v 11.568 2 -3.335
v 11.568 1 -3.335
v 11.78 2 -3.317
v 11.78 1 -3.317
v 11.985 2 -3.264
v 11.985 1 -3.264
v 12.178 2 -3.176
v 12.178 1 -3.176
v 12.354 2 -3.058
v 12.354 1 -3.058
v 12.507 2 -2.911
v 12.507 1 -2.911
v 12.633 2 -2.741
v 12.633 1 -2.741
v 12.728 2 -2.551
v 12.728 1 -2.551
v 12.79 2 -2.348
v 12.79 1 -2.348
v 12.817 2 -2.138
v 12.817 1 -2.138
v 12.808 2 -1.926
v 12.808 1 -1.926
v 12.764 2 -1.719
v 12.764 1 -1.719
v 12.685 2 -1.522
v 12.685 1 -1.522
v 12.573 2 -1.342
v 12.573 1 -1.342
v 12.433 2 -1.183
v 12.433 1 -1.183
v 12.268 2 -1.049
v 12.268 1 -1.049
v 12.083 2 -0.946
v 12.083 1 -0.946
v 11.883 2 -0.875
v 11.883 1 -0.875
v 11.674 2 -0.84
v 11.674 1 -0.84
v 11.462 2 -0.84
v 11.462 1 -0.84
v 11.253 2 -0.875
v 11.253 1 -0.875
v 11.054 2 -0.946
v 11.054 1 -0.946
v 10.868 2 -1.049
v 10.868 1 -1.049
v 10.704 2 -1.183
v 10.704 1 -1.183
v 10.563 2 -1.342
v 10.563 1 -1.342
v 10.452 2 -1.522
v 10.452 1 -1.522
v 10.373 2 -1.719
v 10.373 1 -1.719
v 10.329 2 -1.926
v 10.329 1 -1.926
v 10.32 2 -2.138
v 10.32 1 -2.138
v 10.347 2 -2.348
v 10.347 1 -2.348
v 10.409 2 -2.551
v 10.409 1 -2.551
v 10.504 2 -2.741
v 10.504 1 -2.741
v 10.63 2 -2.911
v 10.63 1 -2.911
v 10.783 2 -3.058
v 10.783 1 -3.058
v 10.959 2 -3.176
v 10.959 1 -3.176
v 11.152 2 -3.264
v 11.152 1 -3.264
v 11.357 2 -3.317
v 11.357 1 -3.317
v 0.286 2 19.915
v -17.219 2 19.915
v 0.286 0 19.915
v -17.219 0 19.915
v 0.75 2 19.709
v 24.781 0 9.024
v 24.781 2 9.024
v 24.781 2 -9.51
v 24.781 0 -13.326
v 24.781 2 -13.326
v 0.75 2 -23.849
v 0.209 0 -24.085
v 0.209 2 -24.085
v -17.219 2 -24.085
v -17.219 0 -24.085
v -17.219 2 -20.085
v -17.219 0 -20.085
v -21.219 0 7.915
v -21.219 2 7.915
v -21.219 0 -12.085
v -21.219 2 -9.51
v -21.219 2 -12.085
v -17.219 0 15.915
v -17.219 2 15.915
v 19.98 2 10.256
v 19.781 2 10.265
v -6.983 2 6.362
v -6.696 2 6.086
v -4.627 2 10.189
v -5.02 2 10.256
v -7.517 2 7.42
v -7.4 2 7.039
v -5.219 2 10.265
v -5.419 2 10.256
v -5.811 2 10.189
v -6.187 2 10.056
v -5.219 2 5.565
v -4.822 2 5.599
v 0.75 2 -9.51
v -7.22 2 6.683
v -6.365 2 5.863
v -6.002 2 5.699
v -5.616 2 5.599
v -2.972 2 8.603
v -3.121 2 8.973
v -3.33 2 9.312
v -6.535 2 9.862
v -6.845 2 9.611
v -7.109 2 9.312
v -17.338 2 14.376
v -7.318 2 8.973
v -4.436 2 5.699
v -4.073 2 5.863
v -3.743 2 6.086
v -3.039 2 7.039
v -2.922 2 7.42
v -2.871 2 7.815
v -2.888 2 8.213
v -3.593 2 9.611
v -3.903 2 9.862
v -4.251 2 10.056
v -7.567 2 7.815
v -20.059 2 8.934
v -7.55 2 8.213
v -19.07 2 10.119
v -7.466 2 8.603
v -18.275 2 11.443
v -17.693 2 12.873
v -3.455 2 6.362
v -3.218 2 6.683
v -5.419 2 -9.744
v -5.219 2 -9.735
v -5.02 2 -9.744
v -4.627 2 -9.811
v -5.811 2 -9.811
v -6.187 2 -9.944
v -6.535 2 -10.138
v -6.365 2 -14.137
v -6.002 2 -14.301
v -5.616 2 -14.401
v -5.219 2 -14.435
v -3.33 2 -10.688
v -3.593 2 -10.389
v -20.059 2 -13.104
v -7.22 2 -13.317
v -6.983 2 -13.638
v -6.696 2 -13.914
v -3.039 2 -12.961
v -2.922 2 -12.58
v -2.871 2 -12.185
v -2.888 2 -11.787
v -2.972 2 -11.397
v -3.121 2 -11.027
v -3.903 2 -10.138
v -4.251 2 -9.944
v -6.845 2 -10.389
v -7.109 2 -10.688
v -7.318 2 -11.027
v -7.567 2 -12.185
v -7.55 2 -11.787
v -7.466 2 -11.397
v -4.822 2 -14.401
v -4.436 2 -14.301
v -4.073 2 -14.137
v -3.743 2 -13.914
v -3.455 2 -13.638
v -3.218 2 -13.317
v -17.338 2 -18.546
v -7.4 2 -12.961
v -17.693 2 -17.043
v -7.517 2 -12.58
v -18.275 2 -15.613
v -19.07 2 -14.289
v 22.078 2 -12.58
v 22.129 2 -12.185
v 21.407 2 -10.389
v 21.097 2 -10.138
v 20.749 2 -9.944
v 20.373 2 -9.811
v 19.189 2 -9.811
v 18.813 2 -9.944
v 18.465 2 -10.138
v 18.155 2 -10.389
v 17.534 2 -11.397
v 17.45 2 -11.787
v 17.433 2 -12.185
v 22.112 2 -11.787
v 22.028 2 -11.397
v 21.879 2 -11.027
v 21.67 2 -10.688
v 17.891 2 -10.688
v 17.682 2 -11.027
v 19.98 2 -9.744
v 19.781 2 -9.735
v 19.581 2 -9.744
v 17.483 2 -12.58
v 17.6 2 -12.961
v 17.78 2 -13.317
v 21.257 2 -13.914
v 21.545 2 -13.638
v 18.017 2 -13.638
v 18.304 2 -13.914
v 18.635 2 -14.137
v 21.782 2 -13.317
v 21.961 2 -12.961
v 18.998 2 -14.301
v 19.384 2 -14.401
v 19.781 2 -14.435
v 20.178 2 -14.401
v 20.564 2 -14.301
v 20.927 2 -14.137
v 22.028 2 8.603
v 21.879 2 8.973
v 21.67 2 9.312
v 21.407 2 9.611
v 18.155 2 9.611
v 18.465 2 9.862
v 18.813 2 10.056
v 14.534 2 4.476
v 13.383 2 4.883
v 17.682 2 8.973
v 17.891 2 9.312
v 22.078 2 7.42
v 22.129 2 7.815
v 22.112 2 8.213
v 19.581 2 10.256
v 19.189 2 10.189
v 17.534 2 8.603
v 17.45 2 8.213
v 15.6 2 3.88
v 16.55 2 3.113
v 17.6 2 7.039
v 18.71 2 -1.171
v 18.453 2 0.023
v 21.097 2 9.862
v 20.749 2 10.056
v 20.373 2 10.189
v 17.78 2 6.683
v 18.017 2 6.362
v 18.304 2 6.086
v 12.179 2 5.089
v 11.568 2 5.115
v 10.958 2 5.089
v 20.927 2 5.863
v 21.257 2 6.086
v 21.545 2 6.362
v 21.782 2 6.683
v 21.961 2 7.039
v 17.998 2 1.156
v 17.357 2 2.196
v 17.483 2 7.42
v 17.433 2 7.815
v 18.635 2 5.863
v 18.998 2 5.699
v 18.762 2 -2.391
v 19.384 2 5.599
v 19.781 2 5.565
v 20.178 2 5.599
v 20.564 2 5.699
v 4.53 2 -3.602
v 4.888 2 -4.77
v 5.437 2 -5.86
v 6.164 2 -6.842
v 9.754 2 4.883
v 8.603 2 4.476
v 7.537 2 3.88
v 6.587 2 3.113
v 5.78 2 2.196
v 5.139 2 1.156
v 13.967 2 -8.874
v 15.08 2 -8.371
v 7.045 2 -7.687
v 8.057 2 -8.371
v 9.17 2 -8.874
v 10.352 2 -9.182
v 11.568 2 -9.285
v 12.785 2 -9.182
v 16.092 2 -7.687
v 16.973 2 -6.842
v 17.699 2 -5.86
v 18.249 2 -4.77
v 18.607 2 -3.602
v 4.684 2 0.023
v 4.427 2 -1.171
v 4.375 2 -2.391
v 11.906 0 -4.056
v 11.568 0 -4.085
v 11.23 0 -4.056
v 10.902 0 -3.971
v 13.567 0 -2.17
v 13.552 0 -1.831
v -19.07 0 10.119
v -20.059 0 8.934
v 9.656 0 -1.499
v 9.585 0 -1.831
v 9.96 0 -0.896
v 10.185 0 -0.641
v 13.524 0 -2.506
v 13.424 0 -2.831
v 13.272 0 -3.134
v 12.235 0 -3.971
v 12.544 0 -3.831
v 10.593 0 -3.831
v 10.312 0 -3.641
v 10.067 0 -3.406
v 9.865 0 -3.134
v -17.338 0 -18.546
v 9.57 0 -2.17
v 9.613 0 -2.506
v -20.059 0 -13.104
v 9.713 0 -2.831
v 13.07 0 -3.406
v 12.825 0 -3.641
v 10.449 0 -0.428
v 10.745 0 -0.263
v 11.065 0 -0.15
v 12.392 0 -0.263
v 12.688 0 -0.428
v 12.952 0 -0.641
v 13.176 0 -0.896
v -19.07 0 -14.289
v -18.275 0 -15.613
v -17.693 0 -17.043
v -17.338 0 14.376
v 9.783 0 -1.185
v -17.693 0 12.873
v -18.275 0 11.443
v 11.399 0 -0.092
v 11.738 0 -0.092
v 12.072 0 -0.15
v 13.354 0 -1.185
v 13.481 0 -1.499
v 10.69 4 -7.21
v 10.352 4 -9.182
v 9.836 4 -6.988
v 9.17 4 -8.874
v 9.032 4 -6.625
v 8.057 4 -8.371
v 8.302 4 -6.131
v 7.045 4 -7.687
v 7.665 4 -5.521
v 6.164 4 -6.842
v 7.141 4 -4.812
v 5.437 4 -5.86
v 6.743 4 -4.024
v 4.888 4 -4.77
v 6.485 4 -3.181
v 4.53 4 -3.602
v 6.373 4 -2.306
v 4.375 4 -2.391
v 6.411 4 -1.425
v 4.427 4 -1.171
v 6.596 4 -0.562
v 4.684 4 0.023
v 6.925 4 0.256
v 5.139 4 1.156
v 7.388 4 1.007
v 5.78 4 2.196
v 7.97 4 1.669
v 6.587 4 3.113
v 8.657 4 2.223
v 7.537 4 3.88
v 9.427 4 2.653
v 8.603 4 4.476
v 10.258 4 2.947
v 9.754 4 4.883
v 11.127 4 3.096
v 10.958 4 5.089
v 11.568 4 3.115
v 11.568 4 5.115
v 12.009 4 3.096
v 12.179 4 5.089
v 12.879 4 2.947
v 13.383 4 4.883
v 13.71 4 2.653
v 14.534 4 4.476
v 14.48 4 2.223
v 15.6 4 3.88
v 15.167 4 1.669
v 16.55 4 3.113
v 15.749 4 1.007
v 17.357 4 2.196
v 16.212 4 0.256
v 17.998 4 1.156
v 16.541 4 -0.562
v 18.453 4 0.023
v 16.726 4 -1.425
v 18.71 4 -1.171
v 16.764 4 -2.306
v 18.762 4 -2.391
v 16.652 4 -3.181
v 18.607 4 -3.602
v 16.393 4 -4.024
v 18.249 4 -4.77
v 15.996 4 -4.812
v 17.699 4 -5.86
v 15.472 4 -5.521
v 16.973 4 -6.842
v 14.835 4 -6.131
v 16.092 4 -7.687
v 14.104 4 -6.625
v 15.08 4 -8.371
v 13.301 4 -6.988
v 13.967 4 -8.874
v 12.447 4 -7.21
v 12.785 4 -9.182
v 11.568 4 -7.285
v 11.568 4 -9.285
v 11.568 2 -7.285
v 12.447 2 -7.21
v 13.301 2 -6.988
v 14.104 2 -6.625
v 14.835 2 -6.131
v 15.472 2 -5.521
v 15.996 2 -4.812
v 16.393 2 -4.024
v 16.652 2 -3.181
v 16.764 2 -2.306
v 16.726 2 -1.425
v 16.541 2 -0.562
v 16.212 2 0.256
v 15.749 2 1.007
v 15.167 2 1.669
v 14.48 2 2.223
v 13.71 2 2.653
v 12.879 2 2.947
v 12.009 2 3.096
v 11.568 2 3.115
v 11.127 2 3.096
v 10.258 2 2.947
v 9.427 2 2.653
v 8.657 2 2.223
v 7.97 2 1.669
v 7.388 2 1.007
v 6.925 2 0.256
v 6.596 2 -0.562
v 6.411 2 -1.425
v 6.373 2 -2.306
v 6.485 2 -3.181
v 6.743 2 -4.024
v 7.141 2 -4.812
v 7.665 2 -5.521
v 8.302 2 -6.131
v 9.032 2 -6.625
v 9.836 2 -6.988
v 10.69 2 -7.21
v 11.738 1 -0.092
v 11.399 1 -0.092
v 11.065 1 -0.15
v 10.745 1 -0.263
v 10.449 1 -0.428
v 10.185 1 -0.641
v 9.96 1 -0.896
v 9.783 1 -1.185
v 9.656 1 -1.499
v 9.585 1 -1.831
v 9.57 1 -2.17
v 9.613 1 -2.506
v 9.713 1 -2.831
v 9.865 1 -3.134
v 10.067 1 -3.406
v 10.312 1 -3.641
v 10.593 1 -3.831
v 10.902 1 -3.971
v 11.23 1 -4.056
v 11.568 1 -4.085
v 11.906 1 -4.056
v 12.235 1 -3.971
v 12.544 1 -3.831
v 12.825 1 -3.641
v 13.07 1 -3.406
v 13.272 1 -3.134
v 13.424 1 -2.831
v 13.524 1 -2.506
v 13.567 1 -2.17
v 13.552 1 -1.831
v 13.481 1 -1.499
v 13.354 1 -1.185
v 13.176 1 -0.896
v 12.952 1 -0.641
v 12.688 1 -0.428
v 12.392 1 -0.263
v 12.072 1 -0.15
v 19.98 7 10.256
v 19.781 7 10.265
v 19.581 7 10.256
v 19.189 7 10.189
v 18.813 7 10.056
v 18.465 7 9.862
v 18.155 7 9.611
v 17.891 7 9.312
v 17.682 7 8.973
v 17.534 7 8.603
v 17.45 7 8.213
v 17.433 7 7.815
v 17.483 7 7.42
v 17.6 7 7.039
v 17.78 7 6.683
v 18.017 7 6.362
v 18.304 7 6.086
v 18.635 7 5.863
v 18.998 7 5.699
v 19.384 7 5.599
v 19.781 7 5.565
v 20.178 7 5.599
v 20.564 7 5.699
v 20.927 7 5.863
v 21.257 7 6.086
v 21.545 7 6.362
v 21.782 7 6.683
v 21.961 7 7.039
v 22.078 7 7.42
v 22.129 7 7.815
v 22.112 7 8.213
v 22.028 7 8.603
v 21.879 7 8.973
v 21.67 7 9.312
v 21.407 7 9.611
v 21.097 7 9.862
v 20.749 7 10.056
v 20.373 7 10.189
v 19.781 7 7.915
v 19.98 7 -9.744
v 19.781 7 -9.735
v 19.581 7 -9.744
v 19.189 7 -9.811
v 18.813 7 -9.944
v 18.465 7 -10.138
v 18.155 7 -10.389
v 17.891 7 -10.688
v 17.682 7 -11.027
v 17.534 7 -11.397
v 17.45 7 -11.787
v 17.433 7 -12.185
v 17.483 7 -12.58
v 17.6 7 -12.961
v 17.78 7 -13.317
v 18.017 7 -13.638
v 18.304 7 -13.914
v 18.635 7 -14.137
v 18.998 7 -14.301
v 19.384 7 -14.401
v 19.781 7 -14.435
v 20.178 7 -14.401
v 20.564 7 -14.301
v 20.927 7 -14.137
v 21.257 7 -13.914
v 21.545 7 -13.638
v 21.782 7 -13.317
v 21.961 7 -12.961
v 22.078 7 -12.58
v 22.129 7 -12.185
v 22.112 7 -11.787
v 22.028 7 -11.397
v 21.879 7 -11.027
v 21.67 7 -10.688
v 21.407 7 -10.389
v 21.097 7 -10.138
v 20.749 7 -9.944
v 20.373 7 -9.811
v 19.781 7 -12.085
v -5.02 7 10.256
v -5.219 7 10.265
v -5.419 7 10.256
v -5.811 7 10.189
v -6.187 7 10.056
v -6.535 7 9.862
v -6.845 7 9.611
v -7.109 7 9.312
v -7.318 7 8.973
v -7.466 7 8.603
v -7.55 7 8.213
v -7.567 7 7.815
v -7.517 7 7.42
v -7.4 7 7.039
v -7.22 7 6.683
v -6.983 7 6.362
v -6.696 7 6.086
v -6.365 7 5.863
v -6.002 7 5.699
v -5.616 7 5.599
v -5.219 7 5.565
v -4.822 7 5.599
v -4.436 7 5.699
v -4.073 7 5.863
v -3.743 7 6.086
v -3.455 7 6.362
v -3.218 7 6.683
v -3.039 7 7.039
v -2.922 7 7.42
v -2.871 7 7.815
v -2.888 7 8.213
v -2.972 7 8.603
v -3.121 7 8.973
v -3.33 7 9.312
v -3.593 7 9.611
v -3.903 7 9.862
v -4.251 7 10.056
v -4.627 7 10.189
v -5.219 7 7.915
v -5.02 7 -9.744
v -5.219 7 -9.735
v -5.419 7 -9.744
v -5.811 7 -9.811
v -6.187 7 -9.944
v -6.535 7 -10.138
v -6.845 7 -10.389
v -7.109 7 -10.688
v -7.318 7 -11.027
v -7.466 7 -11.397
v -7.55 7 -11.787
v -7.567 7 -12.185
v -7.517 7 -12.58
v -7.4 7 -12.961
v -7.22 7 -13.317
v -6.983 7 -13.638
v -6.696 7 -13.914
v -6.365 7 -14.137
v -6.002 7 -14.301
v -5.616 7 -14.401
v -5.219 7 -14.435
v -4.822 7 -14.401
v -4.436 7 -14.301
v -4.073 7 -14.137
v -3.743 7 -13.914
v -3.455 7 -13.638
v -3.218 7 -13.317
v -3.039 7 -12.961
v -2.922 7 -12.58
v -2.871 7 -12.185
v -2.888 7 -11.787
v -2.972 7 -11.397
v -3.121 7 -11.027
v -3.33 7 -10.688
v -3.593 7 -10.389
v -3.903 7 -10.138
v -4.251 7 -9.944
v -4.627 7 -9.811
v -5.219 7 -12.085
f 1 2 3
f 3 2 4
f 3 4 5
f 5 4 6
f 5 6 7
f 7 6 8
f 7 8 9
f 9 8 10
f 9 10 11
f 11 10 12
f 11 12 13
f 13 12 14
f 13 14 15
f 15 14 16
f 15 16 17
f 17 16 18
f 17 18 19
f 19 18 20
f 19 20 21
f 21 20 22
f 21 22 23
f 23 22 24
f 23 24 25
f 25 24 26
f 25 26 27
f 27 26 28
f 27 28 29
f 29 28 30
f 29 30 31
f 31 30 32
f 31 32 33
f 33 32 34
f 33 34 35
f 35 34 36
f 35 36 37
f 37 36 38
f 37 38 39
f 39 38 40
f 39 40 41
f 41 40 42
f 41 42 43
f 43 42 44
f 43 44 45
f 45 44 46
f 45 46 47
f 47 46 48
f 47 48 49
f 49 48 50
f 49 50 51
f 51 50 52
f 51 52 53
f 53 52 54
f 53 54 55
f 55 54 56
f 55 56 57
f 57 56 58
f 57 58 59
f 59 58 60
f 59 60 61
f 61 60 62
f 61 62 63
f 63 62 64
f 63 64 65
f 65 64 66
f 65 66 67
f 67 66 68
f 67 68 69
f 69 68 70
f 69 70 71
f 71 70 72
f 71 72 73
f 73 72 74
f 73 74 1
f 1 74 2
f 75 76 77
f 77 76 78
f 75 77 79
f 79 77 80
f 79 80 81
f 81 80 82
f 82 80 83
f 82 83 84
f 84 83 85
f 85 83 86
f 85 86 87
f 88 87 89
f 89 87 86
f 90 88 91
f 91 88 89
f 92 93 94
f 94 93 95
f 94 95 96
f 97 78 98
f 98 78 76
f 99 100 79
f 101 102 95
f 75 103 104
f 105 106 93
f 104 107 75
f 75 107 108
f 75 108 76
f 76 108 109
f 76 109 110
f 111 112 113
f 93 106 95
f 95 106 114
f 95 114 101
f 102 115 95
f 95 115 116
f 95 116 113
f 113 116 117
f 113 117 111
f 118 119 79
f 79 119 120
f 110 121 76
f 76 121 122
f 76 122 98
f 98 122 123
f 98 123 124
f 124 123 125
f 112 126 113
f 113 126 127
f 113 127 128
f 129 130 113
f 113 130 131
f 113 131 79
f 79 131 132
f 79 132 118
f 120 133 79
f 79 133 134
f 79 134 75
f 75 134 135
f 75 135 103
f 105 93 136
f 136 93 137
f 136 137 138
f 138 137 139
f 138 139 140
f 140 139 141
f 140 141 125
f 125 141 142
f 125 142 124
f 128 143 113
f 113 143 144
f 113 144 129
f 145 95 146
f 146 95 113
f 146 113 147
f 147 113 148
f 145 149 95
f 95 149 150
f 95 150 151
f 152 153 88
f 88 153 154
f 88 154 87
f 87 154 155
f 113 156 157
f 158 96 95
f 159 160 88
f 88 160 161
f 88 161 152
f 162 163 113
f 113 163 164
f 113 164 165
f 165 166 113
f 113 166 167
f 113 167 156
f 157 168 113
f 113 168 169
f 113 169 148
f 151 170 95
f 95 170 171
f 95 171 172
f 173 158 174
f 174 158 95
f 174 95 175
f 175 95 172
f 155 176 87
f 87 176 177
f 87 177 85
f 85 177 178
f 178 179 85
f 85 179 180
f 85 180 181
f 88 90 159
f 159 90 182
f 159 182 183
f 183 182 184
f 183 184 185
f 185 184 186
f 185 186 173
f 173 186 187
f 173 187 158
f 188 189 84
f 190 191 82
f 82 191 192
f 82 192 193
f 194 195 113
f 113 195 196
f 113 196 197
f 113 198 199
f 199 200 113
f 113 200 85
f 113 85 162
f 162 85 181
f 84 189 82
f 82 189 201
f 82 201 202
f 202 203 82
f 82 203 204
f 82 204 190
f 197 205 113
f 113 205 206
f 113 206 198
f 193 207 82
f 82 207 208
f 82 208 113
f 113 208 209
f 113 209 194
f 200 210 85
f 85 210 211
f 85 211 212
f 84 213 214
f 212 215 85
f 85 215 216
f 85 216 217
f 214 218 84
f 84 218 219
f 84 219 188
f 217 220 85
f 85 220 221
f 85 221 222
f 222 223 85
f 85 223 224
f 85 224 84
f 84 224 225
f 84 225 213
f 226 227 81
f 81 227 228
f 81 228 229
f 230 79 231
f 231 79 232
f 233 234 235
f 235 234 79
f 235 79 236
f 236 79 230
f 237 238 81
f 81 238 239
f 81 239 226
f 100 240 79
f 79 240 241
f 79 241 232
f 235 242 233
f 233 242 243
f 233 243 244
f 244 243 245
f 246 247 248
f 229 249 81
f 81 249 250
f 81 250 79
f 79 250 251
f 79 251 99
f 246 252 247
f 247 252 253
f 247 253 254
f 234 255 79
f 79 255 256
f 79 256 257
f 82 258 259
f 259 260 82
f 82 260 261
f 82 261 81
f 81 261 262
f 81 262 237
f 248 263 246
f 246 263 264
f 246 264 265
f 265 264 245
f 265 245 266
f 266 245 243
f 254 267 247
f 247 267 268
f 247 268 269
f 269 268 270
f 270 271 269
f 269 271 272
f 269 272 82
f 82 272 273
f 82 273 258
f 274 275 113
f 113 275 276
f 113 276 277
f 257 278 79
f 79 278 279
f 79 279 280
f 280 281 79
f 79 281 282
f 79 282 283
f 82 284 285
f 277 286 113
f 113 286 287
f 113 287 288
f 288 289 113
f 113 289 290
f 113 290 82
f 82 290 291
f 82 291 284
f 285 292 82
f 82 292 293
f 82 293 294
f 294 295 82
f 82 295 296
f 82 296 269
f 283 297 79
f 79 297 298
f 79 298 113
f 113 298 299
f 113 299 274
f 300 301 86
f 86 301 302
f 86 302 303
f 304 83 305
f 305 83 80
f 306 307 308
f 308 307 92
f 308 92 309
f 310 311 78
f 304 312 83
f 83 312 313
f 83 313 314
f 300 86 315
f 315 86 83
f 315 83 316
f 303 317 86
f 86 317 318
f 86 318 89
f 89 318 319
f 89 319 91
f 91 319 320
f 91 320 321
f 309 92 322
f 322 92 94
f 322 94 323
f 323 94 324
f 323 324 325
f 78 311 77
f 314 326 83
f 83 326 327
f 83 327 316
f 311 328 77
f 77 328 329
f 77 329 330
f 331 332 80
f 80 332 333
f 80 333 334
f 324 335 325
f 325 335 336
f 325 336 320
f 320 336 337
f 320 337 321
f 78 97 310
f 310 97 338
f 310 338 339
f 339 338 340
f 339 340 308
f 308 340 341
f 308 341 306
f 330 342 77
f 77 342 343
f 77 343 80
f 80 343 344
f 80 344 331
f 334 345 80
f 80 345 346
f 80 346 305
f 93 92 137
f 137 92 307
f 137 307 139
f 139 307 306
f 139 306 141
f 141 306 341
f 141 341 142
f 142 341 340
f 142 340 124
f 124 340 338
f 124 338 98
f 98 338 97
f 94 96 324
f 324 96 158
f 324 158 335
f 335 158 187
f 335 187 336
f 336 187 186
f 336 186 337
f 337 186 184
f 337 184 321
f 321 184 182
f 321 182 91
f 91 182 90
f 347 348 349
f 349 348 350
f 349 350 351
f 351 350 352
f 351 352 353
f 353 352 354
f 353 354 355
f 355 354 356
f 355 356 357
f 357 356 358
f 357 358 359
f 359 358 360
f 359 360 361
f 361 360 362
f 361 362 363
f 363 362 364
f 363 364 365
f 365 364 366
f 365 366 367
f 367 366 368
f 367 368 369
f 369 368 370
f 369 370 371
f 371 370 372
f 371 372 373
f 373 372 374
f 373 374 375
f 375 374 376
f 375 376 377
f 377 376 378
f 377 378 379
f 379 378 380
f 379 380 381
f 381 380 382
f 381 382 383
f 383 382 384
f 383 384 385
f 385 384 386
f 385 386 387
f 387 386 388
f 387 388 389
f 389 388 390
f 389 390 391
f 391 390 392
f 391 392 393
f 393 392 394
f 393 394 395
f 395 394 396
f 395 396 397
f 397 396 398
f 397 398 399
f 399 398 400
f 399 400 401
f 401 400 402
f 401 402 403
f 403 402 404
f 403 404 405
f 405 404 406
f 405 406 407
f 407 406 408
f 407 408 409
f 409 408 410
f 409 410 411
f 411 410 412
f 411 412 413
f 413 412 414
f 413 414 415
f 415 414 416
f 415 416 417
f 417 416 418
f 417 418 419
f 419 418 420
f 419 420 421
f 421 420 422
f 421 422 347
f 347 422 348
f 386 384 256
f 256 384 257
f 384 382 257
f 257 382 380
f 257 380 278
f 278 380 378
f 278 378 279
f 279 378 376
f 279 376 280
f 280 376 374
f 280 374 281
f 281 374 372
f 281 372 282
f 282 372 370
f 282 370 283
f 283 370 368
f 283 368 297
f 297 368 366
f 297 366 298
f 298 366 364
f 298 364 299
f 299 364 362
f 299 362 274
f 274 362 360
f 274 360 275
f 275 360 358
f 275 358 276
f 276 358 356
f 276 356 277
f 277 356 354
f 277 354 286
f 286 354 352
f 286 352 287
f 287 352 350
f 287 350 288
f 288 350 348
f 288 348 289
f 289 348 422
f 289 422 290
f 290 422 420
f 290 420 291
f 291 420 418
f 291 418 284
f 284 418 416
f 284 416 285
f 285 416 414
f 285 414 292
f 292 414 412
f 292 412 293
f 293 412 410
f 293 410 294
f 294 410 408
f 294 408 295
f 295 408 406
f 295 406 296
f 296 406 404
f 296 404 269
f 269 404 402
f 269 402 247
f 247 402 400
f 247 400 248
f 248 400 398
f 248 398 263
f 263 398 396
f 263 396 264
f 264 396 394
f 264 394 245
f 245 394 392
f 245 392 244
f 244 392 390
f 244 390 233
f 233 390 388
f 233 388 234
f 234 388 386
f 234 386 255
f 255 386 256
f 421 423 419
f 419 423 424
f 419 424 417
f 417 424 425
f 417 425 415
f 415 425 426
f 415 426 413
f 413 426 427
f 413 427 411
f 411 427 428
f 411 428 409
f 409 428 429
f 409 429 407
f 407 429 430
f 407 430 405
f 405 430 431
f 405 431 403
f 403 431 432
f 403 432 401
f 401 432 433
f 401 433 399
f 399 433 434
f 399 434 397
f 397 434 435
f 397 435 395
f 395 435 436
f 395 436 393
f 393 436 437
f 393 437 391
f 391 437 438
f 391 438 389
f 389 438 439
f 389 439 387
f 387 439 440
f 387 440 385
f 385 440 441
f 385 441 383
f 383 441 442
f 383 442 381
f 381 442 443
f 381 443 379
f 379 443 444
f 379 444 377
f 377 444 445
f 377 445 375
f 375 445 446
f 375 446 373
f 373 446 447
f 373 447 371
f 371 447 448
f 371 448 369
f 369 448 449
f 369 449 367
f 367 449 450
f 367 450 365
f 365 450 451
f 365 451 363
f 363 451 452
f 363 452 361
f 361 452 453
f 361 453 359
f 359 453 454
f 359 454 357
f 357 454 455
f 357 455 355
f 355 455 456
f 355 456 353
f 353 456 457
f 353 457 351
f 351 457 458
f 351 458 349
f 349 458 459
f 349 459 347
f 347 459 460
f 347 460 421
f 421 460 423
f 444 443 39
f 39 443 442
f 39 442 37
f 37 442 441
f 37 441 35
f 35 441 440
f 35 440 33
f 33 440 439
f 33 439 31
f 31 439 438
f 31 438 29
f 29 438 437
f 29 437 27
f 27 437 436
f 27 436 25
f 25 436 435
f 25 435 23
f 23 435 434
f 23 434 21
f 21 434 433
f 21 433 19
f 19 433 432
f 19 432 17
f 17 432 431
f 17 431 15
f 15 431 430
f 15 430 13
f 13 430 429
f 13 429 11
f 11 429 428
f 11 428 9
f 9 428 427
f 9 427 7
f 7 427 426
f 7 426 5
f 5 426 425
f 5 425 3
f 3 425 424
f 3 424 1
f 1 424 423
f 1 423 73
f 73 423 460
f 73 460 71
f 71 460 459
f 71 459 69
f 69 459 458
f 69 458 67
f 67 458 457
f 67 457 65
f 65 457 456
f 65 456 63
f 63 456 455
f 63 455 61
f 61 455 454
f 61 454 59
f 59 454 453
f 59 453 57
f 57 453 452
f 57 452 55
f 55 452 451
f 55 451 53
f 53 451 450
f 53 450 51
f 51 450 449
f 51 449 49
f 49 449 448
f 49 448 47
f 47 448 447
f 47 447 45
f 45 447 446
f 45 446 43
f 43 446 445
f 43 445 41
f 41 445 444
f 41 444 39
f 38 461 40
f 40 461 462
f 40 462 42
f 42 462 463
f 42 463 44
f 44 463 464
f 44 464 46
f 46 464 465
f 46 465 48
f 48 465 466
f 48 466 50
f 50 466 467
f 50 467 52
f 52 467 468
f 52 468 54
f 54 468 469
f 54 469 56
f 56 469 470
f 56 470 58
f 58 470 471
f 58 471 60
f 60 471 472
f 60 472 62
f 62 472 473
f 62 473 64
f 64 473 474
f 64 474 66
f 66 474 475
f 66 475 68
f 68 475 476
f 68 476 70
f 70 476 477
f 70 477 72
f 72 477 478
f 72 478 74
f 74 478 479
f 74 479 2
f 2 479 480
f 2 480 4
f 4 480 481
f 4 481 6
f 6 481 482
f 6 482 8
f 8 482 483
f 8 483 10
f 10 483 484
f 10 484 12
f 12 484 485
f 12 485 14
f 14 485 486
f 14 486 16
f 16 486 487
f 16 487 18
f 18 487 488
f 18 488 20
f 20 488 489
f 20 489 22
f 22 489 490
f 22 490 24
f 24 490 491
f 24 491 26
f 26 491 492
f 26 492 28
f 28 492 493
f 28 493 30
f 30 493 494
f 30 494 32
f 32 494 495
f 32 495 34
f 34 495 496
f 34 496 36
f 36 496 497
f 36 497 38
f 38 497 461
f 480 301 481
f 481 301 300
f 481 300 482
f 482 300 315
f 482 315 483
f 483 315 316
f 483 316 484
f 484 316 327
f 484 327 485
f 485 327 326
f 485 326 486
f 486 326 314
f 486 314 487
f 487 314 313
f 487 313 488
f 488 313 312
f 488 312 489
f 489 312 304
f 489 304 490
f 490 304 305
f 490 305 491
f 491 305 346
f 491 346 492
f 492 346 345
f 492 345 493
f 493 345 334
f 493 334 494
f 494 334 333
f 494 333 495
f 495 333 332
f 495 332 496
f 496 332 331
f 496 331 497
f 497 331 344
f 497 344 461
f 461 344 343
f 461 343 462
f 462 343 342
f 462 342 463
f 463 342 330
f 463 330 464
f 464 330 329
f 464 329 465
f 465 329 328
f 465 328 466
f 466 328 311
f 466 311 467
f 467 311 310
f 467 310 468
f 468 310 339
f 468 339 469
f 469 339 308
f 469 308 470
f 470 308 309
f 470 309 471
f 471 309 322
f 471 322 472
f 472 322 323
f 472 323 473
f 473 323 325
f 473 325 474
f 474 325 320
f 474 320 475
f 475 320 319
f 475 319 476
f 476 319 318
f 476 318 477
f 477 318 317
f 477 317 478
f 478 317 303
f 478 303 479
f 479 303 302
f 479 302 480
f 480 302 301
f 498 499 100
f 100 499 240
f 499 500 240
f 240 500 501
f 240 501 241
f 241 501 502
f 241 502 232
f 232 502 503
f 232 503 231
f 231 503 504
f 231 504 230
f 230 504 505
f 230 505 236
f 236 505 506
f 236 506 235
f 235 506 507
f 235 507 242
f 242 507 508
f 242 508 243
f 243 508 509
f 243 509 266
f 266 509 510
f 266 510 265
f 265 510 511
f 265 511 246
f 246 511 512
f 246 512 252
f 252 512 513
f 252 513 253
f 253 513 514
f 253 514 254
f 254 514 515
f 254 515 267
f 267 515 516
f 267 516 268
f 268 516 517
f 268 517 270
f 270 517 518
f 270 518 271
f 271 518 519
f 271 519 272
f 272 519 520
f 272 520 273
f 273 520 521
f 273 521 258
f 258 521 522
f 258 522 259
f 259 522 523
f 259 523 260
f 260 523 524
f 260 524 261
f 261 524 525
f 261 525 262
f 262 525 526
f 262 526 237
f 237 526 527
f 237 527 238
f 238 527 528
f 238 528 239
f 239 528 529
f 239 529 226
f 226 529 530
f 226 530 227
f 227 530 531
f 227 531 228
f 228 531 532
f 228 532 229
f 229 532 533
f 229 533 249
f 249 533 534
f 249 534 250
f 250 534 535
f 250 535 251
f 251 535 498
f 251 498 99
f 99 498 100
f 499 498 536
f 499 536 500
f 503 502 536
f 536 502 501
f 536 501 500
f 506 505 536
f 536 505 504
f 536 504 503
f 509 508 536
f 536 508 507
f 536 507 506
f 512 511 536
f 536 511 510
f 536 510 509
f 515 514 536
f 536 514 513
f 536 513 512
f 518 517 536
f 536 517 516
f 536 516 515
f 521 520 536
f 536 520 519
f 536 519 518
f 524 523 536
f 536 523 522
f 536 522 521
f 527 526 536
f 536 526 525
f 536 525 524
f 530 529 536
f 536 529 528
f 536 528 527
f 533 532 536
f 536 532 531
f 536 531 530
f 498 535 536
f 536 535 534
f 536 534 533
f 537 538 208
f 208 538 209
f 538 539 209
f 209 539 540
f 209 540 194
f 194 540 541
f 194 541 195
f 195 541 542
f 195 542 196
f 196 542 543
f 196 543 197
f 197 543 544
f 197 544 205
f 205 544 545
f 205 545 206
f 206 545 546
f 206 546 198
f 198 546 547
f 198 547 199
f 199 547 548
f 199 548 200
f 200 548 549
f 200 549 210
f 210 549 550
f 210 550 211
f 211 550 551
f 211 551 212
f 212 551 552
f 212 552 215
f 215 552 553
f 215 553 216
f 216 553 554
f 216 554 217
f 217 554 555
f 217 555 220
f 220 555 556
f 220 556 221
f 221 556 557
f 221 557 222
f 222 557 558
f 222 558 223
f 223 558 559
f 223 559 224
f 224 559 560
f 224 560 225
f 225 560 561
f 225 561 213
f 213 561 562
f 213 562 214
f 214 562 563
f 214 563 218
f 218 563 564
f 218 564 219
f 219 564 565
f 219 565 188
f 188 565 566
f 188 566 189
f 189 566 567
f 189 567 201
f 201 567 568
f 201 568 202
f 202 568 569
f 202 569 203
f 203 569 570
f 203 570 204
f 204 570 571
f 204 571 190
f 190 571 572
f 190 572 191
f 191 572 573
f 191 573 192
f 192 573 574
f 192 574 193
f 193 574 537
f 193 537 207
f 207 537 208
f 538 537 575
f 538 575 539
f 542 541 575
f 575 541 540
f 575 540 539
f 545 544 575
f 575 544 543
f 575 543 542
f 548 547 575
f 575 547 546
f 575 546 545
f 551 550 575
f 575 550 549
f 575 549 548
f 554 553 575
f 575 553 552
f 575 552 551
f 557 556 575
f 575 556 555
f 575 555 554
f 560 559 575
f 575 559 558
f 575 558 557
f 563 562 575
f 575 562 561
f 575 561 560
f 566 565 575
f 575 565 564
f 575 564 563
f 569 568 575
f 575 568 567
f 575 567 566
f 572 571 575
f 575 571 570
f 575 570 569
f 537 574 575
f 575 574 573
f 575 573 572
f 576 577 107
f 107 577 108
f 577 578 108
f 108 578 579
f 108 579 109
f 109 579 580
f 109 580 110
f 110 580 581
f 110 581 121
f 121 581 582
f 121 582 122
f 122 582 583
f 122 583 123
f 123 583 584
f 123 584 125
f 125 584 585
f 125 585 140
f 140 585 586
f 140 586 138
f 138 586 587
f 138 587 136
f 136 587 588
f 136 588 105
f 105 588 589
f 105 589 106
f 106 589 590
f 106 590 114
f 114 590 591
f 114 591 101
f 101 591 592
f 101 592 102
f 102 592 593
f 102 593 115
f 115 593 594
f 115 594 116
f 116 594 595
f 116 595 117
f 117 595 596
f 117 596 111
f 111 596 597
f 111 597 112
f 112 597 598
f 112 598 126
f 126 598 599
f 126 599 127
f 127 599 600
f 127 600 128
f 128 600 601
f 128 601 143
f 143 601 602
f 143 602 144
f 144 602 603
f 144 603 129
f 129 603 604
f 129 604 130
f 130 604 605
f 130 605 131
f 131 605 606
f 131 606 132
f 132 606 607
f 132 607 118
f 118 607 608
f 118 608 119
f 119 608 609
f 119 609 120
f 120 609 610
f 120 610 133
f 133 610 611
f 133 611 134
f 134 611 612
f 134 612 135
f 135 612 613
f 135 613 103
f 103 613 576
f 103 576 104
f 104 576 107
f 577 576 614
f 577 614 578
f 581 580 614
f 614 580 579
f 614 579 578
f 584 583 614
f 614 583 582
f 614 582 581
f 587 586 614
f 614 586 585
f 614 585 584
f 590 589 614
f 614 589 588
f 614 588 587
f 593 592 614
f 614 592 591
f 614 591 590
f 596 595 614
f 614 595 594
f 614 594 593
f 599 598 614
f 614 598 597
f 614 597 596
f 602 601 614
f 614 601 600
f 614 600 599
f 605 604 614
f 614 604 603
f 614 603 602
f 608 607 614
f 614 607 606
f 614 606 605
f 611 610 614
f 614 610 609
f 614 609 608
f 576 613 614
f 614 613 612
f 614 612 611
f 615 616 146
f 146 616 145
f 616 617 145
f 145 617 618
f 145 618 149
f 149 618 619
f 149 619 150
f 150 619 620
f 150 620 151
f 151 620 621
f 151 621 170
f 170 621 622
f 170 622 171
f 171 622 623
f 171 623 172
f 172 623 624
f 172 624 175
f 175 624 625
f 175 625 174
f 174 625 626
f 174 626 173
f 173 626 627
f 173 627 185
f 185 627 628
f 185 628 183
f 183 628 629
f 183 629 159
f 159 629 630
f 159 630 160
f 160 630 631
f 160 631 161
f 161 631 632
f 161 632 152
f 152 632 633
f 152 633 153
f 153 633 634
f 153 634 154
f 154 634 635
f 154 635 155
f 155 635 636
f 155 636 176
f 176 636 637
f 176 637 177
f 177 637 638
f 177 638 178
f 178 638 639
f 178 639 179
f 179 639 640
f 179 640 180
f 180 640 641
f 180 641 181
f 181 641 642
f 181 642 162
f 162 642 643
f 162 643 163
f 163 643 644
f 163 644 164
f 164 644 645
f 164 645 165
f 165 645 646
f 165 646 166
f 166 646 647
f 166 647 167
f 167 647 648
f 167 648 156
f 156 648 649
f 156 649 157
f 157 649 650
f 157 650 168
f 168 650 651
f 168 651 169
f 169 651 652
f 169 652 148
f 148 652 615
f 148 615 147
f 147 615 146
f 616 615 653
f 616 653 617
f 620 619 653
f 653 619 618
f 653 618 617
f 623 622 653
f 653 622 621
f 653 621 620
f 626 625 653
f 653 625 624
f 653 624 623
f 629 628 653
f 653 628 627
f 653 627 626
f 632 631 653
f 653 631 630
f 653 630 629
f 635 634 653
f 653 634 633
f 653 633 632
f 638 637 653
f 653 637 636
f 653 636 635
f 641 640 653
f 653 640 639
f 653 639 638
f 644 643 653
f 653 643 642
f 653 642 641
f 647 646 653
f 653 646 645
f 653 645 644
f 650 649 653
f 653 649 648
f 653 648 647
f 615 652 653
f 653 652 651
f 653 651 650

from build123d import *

# Parameters (mm, degrees)
BOSS_EXTRUDE2_DEPTH = 2
FILLET1_R           = 10
SKETCH3_R           = 7.2
SKETCH3_R_2         = 5.2
BOSS_EXTRUDE3_DEPTH = 2
SKETCH4_R           = 1.25
CUT_EXTRUDE1_DEPTH  = 2
SKETCH5_R           = 2
CUT_EXTRUDE2_DEPTH  = 1
SKETCH6_R           = 2.35
BOSS_EXTRUDE4_DEPTH = 5


with BuildPart() as part:
    # Sketch1 → Boss-Extrude2 (new body)
    with BuildSketch(Plane(origin=(0, 0, 0), x_dir=(1, 0, 0), z_dir=(0, 1, 0))):
        Polygon((-17.219288225, -19.914865419), (0.286329753, -19.914865419), (24.780711775, -9.023800613), (24.780711775, 13.326199387), (0.209283204, 24.085134581), (-17.219288225, 24.085134581), (-17.219288225, 12.085134581), (-21.219288225, 12.085134581), (-21.219288225, -7.914865419), (-17.219288225, -7.914865419), align=None)
    extrude(amount=BOSS_EXTRUDE2_DEPTH)

    # Fillet1
    # the kernel refuses this fillet: 10 mm, written as the material it adds along each edge
    with BuildSketch(Plane(origin=(-17.219288225, 0, 7.914865419), x_dir=(-1, 0, 0), z_dir=(0, 1, 0))) as fillet1_piece_1:
        with BuildLine():
            CenterArc((10, 8), FILLET1_R, 180, 53.130102354)
            Line((0, 8), (-0.2, 8))
            Line((-0.2, 8), (-0.2, 0))
            Line((-0.2, 0), (0, -0.2))
            ThreePointArc((0, -0.2), (2, -0.2), (3.88, -0.16))
            Line((3.88, -0.16), (4, 0))
        make_face()
    extrude(amount=2)
    with BuildSketch(Plane(origin=(-17.219288225, 0, -12.085134581), x_dir=(0, 0, -1), z_dir=(0, 1, 0))) as fillet1_piece_2:
        with BuildLine():
            CenterArc((8, 10), FILLET1_R, 216.869897646, 53.130102354)
            Line((0, 4), (-0.16, 3.88))
            ThreePointArc((-0.16, 3.88), (-0.2, 2), (-0.2, 0))
            Line((-0.2, 0), (0, -0.2))
            Line((0, -0.2), (8, -0.2))
            Line((8, -0.2), (8, 0))
        make_face()
    extrude(amount=2)

    # Sketch3 → Boss-Extrude3 (add)
    with BuildSketch(Plane(origin=(0, 2, 0), x_dir=(1, 0, 0), z_dir=(0, 1, 0))):
        with Locations(Location((11.568463112, 2.085134581, 0), (0, 0, 270))):
            Circle(SKETCH3_R)
        with Locations(Location((11.568463112, 2.085134581, 0), (0, 0, 270))):
            Circle(SKETCH3_R_2, mode=Mode.SUBTRACT)
    extrude(amount=BOSS_EXTRUDE3_DEPTH)

    # Sketch4 → Cut-Extrude1 (cut)
    with BuildSketch(Plane.XZ):
        with Locations(Location((11.568463112, -2.085134581, 0), (0, 0, 270))):
            Circle(SKETCH4_R)
    extrude(amount=-CUT_EXTRUDE1_DEPTH, mode=Mode.SUBTRACT)

    # Sketch5 → Cut-Extrude2 (cut)
    with BuildSketch(Plane.XZ):
        with Locations(Location((11.568463112, -2.085134581, 0), (0, 0, 270))):
            Circle(SKETCH5_R)
    extrude(amount=-CUT_EXTRUDE2_DEPTH, mode=Mode.SUBTRACT)

    # Sketch6 → Boss-Extrude4 (add)
    with BuildSketch(Plane(origin=(0, 2, 0), x_dir=(1, 0, 0), z_dir=(0, 1, 0))):
        with Locations(Location((19.780711775, -7.914865419, 0), (0, 0, 270))):
            Circle(SKETCH6_R)
        with Locations(Location((19.780711775, 12.085134581, 0), (0, 0, 270))):
            Circle(SKETCH6_R)
        with Locations(Location((-5.219288225, -7.914865419, 0), (0, 0, 270))):
            Circle(SKETCH6_R)
        with Locations(Location((-5.219288225, 12.085134581, 0), (0, 0, 270))):
            Circle(SKETCH6_R)
    extrude(amount=BOSS_EXTRUDE4_DEPTH)


solid = part.part
